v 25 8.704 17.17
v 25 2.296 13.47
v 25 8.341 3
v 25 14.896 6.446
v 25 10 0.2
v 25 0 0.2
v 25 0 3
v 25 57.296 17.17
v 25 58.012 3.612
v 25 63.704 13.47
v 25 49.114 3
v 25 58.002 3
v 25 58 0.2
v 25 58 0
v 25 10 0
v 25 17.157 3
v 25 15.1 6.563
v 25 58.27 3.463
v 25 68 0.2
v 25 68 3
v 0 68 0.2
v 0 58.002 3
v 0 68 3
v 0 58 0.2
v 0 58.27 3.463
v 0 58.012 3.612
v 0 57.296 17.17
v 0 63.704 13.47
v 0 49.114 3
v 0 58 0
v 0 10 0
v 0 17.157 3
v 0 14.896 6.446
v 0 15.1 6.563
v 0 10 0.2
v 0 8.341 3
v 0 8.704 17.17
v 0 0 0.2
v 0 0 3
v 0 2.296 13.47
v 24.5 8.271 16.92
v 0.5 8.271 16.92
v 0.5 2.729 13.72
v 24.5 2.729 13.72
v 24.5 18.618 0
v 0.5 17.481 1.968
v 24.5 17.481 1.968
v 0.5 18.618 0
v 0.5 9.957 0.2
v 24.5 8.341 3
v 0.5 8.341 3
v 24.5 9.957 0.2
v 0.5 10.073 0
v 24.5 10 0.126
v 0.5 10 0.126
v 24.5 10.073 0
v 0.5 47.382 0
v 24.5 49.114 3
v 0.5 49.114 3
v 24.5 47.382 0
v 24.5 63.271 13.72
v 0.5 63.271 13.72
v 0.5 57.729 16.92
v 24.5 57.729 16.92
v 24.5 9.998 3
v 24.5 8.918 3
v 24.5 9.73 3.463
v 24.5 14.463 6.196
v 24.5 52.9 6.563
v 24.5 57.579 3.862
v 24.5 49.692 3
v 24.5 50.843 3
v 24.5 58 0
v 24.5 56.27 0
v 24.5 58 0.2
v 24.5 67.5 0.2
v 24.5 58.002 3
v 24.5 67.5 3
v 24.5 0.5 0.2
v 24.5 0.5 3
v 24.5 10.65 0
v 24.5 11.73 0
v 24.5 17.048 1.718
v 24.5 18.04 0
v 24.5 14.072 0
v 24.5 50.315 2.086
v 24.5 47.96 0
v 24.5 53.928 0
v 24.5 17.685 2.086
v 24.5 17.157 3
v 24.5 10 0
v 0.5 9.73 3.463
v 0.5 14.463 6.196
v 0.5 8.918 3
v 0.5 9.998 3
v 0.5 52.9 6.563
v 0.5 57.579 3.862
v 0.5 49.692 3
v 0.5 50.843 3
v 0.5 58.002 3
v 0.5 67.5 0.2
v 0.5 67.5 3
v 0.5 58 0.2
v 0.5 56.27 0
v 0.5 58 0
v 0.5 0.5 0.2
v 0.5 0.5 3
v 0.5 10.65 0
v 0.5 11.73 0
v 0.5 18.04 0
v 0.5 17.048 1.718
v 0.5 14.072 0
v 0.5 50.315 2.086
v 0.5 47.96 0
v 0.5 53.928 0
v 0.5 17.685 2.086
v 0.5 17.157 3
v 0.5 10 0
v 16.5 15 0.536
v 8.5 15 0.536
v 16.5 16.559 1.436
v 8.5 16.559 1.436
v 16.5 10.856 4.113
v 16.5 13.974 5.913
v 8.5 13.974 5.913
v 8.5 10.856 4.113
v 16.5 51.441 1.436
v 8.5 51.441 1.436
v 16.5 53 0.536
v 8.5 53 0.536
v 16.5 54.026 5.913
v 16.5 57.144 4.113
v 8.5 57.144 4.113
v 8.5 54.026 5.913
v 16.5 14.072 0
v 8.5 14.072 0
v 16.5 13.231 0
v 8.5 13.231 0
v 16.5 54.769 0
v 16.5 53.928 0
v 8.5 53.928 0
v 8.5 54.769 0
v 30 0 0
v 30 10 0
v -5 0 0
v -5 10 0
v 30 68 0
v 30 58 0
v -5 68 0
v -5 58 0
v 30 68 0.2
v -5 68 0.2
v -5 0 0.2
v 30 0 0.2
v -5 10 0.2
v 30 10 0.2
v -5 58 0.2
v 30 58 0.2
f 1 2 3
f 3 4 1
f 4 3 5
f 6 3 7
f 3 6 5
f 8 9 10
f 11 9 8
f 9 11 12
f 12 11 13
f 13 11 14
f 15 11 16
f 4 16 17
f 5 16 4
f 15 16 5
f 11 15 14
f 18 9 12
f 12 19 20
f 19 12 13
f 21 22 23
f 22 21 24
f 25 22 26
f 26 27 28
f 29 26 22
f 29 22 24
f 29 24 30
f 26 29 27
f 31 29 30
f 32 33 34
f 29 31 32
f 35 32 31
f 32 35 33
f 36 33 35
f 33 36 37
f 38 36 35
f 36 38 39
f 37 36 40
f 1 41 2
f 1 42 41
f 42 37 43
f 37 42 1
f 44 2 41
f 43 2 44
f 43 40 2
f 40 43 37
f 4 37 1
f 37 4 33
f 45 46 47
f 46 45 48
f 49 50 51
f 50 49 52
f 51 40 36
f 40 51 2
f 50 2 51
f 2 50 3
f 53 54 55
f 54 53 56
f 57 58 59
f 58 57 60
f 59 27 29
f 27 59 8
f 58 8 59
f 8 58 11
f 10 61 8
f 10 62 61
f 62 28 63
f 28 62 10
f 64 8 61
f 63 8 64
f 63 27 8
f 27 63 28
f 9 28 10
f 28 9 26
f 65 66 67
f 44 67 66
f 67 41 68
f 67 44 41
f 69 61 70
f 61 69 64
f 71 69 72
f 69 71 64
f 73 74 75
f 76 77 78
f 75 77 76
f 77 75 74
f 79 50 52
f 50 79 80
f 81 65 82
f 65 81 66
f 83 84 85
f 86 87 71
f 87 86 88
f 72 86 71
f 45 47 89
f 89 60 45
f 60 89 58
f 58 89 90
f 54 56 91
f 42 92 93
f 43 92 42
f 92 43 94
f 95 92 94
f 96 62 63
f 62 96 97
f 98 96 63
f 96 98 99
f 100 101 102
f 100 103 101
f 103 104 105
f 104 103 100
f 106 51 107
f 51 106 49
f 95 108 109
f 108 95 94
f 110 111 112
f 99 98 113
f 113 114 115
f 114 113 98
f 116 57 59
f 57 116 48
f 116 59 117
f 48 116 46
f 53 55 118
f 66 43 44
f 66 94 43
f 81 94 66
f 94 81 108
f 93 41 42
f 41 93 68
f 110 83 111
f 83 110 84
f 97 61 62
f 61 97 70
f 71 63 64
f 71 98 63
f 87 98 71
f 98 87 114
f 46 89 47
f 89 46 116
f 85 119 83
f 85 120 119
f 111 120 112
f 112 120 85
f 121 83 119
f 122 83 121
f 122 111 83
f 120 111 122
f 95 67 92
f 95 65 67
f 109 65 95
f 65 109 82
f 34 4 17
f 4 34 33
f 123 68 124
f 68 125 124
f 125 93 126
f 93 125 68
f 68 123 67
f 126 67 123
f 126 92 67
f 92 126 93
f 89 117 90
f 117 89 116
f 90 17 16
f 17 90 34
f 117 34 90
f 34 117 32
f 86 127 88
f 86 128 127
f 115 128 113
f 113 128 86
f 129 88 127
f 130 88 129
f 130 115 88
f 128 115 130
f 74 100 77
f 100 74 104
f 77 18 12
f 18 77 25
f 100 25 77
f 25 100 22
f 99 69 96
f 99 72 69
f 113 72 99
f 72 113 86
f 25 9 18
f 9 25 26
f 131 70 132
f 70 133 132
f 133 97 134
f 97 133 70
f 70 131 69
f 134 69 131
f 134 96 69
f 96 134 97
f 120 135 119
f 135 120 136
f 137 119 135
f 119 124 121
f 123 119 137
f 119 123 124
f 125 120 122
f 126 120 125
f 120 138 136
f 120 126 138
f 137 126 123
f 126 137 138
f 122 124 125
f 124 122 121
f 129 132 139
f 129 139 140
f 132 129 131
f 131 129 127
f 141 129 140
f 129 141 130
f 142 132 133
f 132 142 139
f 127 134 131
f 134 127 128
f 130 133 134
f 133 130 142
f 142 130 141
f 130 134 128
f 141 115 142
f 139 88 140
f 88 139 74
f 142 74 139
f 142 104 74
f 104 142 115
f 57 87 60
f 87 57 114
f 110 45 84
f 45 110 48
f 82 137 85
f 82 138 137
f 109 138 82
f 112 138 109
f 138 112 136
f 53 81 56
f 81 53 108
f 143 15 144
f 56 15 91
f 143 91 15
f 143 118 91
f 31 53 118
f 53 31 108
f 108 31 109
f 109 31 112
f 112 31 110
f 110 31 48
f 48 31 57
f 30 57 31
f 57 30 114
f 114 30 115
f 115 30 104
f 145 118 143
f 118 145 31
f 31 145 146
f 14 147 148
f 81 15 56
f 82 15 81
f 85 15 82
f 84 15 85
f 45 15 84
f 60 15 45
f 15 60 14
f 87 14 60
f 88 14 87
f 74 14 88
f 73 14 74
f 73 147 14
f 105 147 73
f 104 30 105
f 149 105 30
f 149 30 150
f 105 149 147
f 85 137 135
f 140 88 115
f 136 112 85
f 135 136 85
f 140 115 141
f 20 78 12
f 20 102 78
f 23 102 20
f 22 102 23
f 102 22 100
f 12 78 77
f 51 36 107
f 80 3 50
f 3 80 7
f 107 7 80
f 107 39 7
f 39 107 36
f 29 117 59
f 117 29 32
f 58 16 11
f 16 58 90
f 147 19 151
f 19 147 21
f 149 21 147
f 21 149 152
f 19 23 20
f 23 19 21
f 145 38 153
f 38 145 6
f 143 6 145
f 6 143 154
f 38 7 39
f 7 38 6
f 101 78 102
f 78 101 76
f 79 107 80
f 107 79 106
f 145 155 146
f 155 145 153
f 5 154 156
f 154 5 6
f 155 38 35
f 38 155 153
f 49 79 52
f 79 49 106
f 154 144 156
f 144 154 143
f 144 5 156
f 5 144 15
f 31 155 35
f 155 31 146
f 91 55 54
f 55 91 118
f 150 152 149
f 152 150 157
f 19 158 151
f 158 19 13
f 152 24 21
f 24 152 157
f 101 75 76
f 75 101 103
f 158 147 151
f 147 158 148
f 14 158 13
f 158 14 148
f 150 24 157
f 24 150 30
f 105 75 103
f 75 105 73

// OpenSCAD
/* Diffuser Lense For A Particular Project (OpenSCAD) */
tol = 2;

/* Camera Chamber */
camchamberw = 27 - tol;
camchamberh = 70 - tol;

/* LED PCB */
holedia = 16 + 2;
thickness=3;

/* Enclosure hole */
enclosurew = 19;

/* Shroud */
shroud_mount_inset = 17.5;
shroud_mount_height = -2;
shroud_thickness = 1;
shroud_Length = 20;

/* SMD LED */
ledh = 2.76-1.59;
ledw = 4;
ledd = 1.6;

/* SMD LED INSET */
led_mount_inset = 13;
led_mount_angle = 180+30;
led_mount_tol=2;
led_mount_thickness=1;
led_mount_height = 4;

module led_mount(rotation, w, d, h)
{
  rotate([rotation,0,0])
    union()
    {
      translate([camchamberw/2 - w/2, -d/2, -h])
        cube([w,d,h+4]);
    }
}


module led_shroud(rotation, w, d, h)
{
  rotate([rotation,0,0])
    union()
    {
      translate([camchamberw/2 - w/2, -d/2, -h])
        cube([w,d,h+4]);
    }
}

/* Grippers*/
translate([-5,0,0])
  cube([camchamberw+10,10, 0.2]);
translate([-5,camchamberh-10,0])
  cube([camchamberw+10,10, 0.2]);

intersection()
{
  union()
  {
    linear_extrude(height = thickness) {
       difference() 
      {
         offset(r = 0) 
         {
          square(size = [camchamberw,camchamberh], center = false);
         }
         offset(r = -0.5) 
         {
          square(size = [camchamberw,camchamberh], center = false);
         }
       }
    }
    
    %difference()
    {
      translate([camchamberw/2,camchamberh/2, 0])
        cylinder(thickness,d=holedia+7);
      translate([camchamberw/2,camchamberh/2,-thickness/2])
        cylinder(thickness*2,d=holedia);
    }
   
    // Shroud
    difference()
    {
      union()
      { // Main Body
        translate([0,shroud_mount_height+shroud_mount_inset,shroud_mount_height])
          led_shroud(led_mount_angle,camchamberw,ledd*4+shroud_thickness,shroud_Length);
        translate([0,camchamberh-shroud_mount_inset,shroud_mount_height])
          led_shroud(-led_mount_angle,camchamberw,ledd*4+shroud_thickness,shroud_Length);
      }

      translate([0,shroud_mount_height+shroud_mount_inset,shroud_mount_height])
        led_mount(led_mount_angle,camchamberw-shroud_thickness,ledd*4,shroud_Length+1);
      translate([0,camchamberh-shroud_mount_inset,shroud_mount_height])
        led_mount(-led_mount_angle,camchamberw-shroud_thickness,ledd*4,shroud_Length+1);
      
      //translate([0,0,-1])
      //  cube([camchamberw,camchamberh, thickness]);
     }
    
    // led Holder
    difference()
    {
      union()
      { // Main Body
        // LED Holes
        translate([0,led_mount_inset,led_mount_height])
          led_mount(led_mount_angle,camchamberw,ledd*2+led_mount_tol+led_mount_thickness,ledh);
        translate([0,camchamberh-led_mount_inset,led_mount_height])
          led_mount(-led_mount_angle,camchamberw,ledd*2+led_mount_tol+led_mount_thickness,ledh);
      }

      // LED Holes
      translate([0,led_mount_inset,led_mount_height])
        led_mount(led_mount_angle,ledw+led_mount_tol*2,ledd+led_mount_tol,ledh+2);
      translate([0,camchamberh-led_mount_inset,led_mount_height])
        led_mount(-led_mount_angle,ledw+led_mount_tol*2,ledd+led_mount_tol,ledh+2);
     }
  }

  /* Remove bottom */
  cube([camchamberw,camchamberh, 1000]);
}
